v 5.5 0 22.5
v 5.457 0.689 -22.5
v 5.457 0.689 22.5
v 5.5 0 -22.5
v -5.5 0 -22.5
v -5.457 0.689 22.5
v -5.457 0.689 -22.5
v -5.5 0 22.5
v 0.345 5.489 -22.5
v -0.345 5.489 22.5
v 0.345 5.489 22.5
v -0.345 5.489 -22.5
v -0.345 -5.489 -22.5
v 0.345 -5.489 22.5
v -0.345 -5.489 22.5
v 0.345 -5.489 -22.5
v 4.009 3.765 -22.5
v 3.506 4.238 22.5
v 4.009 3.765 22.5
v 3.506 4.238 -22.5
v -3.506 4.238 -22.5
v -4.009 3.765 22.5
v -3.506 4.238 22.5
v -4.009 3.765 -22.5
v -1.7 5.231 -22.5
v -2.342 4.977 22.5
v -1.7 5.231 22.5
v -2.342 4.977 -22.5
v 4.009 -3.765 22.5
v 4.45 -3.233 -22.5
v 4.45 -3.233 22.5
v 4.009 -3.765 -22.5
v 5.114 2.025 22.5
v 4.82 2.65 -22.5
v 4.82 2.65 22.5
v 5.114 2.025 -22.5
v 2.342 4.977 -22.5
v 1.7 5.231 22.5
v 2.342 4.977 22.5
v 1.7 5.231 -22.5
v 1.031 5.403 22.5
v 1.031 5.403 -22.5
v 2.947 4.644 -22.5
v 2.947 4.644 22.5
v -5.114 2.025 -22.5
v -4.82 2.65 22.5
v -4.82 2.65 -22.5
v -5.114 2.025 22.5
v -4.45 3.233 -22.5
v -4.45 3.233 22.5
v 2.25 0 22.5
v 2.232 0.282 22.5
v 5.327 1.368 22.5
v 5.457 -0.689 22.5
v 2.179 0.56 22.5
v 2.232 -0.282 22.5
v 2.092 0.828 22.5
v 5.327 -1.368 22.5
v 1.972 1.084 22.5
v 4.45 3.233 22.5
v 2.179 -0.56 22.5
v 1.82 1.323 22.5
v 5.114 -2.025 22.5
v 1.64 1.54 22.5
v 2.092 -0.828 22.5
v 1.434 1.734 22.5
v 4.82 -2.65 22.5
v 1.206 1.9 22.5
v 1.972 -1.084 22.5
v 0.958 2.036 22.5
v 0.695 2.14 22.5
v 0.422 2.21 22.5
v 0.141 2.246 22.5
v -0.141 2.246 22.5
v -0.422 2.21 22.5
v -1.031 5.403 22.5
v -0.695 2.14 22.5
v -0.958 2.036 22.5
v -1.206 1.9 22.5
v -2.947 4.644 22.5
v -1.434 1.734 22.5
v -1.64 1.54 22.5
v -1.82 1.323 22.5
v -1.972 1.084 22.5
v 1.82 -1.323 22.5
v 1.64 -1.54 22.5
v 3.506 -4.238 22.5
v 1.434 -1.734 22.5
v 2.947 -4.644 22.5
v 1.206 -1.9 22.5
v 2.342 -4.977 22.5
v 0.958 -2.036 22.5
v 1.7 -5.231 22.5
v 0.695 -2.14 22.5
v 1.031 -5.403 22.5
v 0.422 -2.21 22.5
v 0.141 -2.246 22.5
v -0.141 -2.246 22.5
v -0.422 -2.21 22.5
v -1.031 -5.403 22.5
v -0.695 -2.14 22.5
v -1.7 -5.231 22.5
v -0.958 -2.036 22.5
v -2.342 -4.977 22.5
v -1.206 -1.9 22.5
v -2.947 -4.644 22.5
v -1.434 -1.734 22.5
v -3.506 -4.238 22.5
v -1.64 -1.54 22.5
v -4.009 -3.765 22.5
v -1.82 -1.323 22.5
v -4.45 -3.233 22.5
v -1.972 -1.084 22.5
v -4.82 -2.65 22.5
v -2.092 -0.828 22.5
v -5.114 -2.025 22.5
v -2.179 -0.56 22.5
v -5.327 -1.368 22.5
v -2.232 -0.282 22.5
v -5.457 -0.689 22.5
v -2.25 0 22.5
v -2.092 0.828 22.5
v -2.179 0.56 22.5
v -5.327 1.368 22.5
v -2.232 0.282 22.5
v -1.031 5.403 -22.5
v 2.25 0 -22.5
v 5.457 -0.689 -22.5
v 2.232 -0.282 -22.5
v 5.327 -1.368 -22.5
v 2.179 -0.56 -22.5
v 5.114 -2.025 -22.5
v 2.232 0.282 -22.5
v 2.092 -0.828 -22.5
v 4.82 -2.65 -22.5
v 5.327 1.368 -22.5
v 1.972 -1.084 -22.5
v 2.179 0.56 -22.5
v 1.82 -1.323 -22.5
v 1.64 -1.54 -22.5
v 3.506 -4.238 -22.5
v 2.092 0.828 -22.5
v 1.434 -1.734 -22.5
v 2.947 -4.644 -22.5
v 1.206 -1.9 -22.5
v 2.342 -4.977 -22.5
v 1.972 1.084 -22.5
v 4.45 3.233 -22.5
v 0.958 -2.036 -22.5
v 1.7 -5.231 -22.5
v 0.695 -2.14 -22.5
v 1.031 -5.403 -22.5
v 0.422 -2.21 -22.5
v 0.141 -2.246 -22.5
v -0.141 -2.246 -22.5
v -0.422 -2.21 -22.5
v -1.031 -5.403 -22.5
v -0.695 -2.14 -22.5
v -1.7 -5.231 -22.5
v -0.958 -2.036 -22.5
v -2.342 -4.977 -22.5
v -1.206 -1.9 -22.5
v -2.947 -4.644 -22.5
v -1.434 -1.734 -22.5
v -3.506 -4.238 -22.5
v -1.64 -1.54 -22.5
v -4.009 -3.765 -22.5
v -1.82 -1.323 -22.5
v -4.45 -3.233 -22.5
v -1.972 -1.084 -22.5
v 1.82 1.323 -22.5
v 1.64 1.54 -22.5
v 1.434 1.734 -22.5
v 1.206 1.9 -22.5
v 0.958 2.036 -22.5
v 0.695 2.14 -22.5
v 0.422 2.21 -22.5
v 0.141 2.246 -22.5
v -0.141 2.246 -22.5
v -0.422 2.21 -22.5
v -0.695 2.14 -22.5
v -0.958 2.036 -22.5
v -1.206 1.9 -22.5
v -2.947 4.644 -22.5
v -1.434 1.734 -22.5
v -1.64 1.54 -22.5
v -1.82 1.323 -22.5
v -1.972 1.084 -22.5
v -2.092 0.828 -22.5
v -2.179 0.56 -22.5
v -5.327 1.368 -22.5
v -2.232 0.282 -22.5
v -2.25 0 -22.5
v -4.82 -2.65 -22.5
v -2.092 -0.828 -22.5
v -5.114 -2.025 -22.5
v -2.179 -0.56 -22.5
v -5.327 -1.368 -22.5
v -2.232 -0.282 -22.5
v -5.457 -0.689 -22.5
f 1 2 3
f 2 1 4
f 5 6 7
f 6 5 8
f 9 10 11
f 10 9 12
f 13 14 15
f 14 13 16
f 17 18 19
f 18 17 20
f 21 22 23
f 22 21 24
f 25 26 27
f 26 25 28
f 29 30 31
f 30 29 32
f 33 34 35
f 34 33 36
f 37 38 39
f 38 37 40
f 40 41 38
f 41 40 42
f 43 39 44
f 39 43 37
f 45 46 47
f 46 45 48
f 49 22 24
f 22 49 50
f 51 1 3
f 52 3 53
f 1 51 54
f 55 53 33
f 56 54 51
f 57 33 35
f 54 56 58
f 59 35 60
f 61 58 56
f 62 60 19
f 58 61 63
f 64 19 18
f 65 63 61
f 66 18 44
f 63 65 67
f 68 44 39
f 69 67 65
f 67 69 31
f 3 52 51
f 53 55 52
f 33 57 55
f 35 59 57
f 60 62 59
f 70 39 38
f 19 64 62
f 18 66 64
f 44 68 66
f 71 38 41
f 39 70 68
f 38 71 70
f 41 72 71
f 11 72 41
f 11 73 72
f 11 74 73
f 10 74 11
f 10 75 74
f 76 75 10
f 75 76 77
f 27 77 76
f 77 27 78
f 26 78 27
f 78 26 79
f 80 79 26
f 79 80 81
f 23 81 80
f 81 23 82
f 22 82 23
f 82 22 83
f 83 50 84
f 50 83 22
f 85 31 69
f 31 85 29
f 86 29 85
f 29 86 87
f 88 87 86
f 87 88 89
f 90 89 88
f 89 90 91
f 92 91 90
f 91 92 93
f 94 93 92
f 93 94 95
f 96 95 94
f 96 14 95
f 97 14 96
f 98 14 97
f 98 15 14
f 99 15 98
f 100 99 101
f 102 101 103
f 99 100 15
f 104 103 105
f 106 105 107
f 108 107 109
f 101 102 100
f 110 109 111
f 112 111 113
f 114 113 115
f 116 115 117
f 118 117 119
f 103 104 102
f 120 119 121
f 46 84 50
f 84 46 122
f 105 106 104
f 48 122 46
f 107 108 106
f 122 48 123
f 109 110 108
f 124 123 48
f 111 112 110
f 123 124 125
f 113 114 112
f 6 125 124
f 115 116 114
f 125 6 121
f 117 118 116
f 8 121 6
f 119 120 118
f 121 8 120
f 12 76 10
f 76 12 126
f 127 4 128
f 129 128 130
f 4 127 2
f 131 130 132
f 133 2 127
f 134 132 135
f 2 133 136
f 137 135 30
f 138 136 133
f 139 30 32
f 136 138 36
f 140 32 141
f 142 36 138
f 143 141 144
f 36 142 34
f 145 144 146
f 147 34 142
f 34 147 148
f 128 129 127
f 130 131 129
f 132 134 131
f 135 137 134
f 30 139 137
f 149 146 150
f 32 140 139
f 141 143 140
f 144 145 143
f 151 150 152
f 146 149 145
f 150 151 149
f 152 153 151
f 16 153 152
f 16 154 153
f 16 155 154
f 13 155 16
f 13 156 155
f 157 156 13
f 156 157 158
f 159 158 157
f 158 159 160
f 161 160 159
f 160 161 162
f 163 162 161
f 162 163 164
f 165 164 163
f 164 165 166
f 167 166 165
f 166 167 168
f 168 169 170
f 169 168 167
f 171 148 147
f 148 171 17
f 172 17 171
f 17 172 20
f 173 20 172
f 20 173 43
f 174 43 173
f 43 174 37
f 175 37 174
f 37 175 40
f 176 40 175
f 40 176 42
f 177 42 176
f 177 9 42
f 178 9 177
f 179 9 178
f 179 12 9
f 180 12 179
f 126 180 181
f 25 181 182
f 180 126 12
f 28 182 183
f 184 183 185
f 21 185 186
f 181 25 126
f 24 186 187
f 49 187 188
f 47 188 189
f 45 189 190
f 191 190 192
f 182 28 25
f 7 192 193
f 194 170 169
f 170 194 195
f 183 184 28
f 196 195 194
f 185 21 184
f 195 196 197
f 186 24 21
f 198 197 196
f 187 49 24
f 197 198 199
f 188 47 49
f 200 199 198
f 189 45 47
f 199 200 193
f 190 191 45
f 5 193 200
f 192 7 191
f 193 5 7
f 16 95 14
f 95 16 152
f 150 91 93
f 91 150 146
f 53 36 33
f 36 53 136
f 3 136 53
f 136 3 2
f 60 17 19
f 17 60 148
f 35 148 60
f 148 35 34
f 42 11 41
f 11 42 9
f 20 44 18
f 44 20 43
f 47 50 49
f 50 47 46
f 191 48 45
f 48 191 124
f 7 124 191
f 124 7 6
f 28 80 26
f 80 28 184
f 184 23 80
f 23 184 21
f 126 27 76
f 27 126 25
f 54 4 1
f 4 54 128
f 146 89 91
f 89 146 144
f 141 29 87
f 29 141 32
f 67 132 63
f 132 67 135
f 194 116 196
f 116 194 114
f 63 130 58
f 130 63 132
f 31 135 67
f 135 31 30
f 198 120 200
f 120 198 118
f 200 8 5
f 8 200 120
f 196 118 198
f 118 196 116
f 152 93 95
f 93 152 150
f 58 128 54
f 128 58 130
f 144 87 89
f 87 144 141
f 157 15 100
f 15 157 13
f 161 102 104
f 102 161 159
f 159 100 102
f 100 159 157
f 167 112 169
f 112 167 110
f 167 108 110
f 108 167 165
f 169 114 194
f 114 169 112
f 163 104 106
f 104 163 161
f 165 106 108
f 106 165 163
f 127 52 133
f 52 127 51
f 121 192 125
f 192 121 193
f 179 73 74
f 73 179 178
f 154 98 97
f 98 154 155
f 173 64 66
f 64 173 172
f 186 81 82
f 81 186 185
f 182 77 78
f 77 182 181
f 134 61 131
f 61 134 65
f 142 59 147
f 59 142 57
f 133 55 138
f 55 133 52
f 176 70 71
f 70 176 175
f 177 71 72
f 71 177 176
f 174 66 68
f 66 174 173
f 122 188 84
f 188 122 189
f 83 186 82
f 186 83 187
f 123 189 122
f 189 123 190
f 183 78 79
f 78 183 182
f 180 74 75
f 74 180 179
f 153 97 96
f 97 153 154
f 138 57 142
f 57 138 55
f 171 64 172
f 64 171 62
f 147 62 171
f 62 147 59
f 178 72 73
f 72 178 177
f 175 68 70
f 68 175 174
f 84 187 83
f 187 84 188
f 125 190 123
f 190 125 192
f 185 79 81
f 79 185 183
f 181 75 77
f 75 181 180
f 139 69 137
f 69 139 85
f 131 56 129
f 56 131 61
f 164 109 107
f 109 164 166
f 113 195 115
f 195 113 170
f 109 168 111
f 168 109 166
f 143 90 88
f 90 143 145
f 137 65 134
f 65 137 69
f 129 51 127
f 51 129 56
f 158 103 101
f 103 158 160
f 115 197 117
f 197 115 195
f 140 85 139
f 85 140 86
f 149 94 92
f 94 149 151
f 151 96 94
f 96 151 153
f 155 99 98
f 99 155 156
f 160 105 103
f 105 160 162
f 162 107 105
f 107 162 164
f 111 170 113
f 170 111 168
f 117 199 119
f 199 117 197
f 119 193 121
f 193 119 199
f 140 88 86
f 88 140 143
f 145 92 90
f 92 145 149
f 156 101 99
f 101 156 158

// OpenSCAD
$fn = 50;


difference() {
	union() {
		translate(v = [0, 0, -22.5000000000]) {
			cylinder(h = 45, r = 5.5000000000);
		}
	}
	union() {
		translate(v = [0, 0, -100.0000000000]) {
			cylinder(h = 200, r = 2.2500000000);
		}
	}
}
